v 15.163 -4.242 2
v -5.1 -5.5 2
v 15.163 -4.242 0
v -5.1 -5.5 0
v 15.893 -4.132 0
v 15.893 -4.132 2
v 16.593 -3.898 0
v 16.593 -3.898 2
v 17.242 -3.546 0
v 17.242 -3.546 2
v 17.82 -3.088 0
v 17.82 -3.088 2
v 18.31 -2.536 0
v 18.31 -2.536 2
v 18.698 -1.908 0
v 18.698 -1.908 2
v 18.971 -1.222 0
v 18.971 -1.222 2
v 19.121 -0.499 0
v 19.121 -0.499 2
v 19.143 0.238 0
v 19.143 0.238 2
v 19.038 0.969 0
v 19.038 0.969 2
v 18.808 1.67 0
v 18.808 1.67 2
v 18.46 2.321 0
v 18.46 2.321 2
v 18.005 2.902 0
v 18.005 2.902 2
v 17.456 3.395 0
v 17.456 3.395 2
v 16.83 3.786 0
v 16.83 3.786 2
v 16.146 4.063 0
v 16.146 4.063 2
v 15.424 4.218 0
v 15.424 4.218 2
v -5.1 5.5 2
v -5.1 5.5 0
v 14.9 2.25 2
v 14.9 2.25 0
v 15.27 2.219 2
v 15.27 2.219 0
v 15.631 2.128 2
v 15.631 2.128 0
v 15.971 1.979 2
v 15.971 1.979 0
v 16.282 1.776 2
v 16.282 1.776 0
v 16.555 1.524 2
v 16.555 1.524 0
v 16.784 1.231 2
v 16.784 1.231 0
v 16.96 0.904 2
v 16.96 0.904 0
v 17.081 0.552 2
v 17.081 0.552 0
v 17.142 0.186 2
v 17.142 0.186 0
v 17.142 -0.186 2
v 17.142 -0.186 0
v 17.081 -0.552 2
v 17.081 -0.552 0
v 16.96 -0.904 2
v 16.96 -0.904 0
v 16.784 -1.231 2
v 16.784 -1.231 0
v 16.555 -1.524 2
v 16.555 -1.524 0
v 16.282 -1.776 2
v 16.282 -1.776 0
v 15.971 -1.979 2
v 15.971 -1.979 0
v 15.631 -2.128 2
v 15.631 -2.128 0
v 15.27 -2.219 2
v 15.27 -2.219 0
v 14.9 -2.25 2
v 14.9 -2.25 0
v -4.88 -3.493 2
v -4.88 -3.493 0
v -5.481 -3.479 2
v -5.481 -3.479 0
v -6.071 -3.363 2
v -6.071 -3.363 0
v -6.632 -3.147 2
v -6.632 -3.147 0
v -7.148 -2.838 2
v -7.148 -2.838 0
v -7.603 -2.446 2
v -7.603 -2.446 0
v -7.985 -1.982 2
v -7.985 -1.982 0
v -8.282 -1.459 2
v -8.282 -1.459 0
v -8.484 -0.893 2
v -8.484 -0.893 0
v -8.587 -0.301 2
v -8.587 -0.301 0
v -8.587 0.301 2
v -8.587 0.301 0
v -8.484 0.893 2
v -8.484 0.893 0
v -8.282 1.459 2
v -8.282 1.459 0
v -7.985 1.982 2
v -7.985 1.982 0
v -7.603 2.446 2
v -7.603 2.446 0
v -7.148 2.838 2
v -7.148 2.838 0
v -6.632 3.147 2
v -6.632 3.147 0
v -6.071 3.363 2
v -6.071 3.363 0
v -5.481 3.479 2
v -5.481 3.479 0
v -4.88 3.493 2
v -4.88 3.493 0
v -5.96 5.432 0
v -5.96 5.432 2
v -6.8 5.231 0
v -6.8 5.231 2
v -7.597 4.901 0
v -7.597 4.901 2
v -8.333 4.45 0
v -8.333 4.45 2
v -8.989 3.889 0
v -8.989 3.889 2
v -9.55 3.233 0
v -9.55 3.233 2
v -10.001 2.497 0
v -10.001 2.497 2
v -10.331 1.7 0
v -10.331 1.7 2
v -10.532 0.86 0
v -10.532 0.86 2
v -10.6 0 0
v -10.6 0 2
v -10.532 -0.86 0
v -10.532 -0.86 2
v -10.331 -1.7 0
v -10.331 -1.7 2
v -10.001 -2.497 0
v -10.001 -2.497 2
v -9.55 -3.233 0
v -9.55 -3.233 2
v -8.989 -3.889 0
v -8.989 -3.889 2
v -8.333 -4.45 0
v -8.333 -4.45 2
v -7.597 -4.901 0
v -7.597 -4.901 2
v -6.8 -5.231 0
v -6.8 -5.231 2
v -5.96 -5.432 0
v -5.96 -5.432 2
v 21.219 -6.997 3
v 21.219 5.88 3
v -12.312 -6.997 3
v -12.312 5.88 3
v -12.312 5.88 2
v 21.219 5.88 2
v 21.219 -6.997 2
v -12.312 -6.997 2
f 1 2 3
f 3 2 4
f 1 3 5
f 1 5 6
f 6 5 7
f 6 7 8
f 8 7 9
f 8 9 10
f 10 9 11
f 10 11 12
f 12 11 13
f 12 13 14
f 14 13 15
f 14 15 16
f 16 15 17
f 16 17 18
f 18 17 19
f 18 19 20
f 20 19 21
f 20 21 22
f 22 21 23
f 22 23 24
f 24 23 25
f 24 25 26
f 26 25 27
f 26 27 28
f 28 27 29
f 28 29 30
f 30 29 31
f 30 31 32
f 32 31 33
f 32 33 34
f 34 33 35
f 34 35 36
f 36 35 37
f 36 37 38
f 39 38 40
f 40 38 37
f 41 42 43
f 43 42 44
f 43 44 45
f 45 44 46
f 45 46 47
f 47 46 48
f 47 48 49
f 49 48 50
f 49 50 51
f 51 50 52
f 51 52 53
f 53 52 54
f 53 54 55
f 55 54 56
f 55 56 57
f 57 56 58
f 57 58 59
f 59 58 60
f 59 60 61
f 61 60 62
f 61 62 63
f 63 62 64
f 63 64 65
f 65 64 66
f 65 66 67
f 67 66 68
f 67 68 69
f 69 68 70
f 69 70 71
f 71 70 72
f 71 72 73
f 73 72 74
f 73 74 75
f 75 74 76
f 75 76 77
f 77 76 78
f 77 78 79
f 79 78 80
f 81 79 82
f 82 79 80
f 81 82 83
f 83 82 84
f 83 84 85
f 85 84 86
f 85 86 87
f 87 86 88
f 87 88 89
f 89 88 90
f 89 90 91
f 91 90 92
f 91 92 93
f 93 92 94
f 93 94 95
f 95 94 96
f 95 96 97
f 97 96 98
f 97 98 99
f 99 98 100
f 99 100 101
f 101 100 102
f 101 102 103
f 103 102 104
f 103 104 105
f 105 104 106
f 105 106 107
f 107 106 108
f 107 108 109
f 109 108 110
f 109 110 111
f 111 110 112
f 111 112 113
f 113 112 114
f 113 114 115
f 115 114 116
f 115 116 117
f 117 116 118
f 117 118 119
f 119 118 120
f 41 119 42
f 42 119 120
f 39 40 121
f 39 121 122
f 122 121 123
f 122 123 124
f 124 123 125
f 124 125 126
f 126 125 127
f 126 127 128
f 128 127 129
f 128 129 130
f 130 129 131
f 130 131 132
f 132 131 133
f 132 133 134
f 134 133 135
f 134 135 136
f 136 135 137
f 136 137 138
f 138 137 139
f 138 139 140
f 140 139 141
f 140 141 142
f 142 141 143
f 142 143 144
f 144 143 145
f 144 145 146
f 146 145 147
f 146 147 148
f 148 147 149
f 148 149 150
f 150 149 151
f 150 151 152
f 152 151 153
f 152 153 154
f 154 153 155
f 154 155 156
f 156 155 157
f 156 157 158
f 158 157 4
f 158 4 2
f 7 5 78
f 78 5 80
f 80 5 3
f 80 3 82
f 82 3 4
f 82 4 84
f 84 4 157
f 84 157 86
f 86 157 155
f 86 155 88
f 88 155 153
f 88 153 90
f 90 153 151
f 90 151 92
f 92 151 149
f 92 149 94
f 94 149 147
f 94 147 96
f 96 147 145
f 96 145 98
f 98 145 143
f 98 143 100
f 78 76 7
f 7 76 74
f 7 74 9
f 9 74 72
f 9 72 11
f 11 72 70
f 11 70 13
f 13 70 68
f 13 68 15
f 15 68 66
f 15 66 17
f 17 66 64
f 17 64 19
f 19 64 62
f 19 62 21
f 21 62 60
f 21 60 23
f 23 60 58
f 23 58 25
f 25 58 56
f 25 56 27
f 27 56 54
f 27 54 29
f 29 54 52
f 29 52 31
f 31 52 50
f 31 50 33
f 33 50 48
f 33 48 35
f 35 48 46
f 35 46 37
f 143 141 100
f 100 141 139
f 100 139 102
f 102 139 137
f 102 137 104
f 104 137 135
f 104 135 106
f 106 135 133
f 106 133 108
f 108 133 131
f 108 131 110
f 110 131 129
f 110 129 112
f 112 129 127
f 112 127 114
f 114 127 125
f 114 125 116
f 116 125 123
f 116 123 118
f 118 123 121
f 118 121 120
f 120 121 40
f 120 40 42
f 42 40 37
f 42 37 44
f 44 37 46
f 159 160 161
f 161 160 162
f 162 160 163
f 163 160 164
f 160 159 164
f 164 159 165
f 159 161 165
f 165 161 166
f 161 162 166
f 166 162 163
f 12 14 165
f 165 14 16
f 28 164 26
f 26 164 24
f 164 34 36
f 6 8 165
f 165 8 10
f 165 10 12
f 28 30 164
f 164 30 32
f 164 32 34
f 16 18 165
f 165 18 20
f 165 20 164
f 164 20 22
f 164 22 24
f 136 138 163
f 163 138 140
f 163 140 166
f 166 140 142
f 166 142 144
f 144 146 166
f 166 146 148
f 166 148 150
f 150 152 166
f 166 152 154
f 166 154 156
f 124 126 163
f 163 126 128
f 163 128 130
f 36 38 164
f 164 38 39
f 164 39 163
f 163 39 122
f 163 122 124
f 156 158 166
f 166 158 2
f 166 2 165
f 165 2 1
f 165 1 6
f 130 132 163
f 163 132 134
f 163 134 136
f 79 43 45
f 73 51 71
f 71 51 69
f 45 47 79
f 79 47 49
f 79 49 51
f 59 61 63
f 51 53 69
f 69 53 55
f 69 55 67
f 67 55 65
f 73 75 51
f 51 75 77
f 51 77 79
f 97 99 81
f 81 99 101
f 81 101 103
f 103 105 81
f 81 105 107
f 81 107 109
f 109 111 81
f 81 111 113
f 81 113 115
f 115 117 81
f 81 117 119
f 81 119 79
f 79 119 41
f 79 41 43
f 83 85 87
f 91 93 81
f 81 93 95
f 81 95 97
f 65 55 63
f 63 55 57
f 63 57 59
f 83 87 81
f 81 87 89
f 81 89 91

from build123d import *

# Parameters (mm, degrees)
BOSS_EXTRUDE1_DEPTH = 2
SKETCH2_W           = 33.530667502
SKETCH2_H           = 12.876796265
BOSS_EXTRUDE2_DEPTH = 1


with BuildPart() as part:
    # Sketch1 → Boss-Extrude1 (new body)
    with BuildSketch(Plane(origin=(0, 0, 0), x_dir=(-1, 0, 0), z_dir=(0, 0, 1))):
        with BuildLine():
            Line((4.419624532, 5.457754962), (-15.163378573, 4.241831176))
            ThreePointArc((-15.163378573, 4.241831176), (-19.147983311, 0.130911389), (-15.424074318, -4.217564002))
            Line((-15.424074318, -4.217564002), (-14.905016784, -4.249997039))
            Line((-14.905016784, -4.249997039), (4.41534389, -5.457219623))
            Line((4.41534389, -5.457219623), (5.1, -5.5))
            ThreePointArc((5.1, -5.5), (10.6, 0), (5.1, 5.5))
            Line((5.1, 5.5), (4.419624532, 5.457754962))
        make_face()
        with BuildLine():
            Line((-14.9, 2.25), (4.880474733, 3.493108738))
            ThreePointArc((4.880474733, 3.493108738), (8.6, 0), (4.880474733, -3.493108738))
            Line((4.880474733, -3.493108738), (-14.9, -2.25))
            ThreePointArc((-14.9, -2.25), (-17.15, 0), (-14.9, 2.25))
        make_face(mode=Mode.SUBTRACT)
    extrude(amount=BOSS_EXTRUDE1_DEPTH)

    # Sketch2 → Boss-Extrude2 (add)
    with BuildSketch(Plane.XY.offset(2)):
        with Locations((4.453710744, -0.558629325)):
            Rectangle(SKETCH2_W, SKETCH2_H)
    extrude(amount=BOSS_EXTRUDE2_DEPTH)


solid = part.part
